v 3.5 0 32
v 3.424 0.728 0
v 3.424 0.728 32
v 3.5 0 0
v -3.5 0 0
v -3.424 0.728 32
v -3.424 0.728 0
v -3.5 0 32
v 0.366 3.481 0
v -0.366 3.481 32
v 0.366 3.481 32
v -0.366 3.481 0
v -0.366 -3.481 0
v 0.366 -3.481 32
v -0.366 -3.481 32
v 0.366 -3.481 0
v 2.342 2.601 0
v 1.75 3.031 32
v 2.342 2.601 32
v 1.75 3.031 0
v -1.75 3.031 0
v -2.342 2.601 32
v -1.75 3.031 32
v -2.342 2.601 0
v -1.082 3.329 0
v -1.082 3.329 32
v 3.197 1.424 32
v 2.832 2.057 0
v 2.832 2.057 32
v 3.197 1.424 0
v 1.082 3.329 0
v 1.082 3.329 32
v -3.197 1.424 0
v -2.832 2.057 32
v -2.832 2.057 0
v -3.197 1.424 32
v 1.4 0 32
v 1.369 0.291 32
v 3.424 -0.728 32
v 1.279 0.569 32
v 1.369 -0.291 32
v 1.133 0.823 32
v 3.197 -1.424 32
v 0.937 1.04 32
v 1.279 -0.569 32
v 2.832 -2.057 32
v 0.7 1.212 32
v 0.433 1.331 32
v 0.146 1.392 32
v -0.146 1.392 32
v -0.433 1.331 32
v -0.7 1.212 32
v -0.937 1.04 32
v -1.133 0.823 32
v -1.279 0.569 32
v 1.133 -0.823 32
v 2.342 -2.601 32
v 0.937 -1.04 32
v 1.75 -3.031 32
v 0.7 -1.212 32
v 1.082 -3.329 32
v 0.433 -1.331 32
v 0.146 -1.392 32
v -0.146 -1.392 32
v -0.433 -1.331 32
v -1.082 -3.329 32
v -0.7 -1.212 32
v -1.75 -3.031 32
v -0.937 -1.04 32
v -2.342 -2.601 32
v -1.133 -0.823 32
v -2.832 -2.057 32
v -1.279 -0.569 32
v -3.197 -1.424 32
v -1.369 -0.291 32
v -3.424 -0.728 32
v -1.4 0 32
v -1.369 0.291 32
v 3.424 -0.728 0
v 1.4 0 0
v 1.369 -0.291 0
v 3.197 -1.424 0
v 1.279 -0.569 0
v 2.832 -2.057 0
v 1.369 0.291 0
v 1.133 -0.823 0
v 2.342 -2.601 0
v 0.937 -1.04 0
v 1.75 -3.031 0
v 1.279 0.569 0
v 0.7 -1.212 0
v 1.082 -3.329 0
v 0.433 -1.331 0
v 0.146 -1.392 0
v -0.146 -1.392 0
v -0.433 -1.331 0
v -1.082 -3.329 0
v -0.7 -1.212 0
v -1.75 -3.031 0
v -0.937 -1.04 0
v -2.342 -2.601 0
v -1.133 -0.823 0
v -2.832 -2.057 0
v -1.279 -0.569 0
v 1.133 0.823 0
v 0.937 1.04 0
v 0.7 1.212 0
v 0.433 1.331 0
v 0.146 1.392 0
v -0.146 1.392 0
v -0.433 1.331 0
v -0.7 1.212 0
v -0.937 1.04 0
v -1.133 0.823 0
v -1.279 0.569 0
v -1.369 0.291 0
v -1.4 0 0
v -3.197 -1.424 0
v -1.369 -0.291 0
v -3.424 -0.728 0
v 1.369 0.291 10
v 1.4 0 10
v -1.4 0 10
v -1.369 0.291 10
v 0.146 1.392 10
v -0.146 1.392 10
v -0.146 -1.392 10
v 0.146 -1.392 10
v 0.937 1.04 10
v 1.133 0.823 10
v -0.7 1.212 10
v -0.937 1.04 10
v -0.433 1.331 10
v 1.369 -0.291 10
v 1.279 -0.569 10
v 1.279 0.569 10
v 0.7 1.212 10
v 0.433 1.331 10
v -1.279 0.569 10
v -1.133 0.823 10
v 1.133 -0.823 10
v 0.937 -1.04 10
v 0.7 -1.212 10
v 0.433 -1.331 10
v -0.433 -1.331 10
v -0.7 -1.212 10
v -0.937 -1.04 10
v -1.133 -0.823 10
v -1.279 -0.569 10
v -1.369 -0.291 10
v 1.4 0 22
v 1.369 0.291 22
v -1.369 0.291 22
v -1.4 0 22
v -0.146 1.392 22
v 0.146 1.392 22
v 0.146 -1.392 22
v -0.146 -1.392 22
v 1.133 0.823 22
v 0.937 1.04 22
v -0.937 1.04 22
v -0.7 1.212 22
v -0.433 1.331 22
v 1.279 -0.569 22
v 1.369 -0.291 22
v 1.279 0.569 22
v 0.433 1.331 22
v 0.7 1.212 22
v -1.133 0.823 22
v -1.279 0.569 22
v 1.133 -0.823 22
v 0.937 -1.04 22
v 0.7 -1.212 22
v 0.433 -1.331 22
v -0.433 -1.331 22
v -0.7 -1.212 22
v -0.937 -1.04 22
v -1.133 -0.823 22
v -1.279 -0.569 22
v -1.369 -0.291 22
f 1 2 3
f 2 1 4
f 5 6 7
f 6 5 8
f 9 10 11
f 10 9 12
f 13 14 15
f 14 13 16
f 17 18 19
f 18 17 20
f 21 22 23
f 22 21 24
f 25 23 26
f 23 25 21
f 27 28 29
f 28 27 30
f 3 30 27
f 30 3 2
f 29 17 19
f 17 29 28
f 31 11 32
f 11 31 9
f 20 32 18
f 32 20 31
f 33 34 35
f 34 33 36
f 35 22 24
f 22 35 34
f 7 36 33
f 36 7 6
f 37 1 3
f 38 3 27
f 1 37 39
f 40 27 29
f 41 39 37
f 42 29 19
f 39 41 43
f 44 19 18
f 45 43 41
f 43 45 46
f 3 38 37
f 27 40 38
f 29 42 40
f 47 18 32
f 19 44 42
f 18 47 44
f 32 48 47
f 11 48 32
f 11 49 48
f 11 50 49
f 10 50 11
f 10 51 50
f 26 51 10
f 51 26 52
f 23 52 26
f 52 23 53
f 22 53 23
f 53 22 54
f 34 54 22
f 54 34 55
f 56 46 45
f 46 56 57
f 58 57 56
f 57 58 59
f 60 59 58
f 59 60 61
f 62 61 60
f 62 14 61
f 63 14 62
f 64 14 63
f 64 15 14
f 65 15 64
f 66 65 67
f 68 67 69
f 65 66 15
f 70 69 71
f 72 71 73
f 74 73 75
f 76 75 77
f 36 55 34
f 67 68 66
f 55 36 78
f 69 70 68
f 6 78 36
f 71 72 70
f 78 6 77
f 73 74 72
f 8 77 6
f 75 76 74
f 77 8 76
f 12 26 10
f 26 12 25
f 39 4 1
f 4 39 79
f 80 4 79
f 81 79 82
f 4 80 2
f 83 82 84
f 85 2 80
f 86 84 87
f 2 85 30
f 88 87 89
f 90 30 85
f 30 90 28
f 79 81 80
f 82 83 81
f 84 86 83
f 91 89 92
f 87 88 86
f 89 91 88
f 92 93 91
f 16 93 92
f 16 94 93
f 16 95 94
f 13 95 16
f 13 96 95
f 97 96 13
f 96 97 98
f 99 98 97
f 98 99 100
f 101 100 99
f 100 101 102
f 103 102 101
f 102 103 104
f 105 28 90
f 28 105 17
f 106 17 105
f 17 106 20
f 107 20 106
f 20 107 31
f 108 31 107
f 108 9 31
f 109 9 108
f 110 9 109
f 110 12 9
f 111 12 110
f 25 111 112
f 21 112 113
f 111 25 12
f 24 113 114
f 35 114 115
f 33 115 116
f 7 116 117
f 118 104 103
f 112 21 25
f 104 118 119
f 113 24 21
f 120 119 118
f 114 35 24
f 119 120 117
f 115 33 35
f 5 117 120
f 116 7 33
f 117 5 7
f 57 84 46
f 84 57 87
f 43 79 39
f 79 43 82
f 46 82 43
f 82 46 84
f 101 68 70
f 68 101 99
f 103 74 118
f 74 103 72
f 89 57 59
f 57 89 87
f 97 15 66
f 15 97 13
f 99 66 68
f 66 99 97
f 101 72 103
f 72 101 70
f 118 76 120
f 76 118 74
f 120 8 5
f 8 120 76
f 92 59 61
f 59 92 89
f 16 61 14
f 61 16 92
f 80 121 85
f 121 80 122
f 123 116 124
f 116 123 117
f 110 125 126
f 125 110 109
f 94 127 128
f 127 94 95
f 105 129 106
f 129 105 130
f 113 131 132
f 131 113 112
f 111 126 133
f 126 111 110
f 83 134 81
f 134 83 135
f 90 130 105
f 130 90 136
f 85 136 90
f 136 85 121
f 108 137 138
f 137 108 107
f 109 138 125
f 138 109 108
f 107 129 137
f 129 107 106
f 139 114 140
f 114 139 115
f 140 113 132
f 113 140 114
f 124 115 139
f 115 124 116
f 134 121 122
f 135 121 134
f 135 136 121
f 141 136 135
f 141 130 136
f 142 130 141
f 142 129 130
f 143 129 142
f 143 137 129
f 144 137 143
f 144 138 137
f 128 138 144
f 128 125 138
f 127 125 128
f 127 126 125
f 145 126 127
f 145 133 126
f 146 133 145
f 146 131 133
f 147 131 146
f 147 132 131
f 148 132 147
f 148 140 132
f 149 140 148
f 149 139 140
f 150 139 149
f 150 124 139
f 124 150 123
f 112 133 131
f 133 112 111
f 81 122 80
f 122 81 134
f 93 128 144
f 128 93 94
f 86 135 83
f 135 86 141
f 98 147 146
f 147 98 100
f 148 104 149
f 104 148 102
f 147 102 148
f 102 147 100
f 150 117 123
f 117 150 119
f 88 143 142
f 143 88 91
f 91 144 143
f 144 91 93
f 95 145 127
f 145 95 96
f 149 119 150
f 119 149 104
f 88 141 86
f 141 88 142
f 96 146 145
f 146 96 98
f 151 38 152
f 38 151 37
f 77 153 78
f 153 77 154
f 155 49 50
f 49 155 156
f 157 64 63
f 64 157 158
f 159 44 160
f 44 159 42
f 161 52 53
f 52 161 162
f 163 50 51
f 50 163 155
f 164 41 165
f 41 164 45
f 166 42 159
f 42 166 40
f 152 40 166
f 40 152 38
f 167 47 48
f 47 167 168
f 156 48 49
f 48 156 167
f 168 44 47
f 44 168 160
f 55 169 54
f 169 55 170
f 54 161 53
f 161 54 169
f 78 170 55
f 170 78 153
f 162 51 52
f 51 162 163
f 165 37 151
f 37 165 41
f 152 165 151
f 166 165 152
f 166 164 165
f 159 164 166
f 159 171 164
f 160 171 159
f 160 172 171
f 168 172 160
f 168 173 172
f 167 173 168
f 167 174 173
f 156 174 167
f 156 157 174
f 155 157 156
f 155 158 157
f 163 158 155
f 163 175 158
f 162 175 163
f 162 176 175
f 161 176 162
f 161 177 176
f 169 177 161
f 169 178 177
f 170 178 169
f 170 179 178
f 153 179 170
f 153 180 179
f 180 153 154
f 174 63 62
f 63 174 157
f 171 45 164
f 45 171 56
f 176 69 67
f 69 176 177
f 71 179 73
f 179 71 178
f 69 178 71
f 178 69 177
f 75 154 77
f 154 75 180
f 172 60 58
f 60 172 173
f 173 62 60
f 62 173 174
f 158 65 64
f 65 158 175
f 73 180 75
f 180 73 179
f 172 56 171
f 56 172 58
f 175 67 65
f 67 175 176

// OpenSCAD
$fn=30;
difference(){
cylinder(d=7,h=32);
cylinder(d=2.8,h=10);
translate([0,0,22])cylinder(d=2.8,h=10);
}
